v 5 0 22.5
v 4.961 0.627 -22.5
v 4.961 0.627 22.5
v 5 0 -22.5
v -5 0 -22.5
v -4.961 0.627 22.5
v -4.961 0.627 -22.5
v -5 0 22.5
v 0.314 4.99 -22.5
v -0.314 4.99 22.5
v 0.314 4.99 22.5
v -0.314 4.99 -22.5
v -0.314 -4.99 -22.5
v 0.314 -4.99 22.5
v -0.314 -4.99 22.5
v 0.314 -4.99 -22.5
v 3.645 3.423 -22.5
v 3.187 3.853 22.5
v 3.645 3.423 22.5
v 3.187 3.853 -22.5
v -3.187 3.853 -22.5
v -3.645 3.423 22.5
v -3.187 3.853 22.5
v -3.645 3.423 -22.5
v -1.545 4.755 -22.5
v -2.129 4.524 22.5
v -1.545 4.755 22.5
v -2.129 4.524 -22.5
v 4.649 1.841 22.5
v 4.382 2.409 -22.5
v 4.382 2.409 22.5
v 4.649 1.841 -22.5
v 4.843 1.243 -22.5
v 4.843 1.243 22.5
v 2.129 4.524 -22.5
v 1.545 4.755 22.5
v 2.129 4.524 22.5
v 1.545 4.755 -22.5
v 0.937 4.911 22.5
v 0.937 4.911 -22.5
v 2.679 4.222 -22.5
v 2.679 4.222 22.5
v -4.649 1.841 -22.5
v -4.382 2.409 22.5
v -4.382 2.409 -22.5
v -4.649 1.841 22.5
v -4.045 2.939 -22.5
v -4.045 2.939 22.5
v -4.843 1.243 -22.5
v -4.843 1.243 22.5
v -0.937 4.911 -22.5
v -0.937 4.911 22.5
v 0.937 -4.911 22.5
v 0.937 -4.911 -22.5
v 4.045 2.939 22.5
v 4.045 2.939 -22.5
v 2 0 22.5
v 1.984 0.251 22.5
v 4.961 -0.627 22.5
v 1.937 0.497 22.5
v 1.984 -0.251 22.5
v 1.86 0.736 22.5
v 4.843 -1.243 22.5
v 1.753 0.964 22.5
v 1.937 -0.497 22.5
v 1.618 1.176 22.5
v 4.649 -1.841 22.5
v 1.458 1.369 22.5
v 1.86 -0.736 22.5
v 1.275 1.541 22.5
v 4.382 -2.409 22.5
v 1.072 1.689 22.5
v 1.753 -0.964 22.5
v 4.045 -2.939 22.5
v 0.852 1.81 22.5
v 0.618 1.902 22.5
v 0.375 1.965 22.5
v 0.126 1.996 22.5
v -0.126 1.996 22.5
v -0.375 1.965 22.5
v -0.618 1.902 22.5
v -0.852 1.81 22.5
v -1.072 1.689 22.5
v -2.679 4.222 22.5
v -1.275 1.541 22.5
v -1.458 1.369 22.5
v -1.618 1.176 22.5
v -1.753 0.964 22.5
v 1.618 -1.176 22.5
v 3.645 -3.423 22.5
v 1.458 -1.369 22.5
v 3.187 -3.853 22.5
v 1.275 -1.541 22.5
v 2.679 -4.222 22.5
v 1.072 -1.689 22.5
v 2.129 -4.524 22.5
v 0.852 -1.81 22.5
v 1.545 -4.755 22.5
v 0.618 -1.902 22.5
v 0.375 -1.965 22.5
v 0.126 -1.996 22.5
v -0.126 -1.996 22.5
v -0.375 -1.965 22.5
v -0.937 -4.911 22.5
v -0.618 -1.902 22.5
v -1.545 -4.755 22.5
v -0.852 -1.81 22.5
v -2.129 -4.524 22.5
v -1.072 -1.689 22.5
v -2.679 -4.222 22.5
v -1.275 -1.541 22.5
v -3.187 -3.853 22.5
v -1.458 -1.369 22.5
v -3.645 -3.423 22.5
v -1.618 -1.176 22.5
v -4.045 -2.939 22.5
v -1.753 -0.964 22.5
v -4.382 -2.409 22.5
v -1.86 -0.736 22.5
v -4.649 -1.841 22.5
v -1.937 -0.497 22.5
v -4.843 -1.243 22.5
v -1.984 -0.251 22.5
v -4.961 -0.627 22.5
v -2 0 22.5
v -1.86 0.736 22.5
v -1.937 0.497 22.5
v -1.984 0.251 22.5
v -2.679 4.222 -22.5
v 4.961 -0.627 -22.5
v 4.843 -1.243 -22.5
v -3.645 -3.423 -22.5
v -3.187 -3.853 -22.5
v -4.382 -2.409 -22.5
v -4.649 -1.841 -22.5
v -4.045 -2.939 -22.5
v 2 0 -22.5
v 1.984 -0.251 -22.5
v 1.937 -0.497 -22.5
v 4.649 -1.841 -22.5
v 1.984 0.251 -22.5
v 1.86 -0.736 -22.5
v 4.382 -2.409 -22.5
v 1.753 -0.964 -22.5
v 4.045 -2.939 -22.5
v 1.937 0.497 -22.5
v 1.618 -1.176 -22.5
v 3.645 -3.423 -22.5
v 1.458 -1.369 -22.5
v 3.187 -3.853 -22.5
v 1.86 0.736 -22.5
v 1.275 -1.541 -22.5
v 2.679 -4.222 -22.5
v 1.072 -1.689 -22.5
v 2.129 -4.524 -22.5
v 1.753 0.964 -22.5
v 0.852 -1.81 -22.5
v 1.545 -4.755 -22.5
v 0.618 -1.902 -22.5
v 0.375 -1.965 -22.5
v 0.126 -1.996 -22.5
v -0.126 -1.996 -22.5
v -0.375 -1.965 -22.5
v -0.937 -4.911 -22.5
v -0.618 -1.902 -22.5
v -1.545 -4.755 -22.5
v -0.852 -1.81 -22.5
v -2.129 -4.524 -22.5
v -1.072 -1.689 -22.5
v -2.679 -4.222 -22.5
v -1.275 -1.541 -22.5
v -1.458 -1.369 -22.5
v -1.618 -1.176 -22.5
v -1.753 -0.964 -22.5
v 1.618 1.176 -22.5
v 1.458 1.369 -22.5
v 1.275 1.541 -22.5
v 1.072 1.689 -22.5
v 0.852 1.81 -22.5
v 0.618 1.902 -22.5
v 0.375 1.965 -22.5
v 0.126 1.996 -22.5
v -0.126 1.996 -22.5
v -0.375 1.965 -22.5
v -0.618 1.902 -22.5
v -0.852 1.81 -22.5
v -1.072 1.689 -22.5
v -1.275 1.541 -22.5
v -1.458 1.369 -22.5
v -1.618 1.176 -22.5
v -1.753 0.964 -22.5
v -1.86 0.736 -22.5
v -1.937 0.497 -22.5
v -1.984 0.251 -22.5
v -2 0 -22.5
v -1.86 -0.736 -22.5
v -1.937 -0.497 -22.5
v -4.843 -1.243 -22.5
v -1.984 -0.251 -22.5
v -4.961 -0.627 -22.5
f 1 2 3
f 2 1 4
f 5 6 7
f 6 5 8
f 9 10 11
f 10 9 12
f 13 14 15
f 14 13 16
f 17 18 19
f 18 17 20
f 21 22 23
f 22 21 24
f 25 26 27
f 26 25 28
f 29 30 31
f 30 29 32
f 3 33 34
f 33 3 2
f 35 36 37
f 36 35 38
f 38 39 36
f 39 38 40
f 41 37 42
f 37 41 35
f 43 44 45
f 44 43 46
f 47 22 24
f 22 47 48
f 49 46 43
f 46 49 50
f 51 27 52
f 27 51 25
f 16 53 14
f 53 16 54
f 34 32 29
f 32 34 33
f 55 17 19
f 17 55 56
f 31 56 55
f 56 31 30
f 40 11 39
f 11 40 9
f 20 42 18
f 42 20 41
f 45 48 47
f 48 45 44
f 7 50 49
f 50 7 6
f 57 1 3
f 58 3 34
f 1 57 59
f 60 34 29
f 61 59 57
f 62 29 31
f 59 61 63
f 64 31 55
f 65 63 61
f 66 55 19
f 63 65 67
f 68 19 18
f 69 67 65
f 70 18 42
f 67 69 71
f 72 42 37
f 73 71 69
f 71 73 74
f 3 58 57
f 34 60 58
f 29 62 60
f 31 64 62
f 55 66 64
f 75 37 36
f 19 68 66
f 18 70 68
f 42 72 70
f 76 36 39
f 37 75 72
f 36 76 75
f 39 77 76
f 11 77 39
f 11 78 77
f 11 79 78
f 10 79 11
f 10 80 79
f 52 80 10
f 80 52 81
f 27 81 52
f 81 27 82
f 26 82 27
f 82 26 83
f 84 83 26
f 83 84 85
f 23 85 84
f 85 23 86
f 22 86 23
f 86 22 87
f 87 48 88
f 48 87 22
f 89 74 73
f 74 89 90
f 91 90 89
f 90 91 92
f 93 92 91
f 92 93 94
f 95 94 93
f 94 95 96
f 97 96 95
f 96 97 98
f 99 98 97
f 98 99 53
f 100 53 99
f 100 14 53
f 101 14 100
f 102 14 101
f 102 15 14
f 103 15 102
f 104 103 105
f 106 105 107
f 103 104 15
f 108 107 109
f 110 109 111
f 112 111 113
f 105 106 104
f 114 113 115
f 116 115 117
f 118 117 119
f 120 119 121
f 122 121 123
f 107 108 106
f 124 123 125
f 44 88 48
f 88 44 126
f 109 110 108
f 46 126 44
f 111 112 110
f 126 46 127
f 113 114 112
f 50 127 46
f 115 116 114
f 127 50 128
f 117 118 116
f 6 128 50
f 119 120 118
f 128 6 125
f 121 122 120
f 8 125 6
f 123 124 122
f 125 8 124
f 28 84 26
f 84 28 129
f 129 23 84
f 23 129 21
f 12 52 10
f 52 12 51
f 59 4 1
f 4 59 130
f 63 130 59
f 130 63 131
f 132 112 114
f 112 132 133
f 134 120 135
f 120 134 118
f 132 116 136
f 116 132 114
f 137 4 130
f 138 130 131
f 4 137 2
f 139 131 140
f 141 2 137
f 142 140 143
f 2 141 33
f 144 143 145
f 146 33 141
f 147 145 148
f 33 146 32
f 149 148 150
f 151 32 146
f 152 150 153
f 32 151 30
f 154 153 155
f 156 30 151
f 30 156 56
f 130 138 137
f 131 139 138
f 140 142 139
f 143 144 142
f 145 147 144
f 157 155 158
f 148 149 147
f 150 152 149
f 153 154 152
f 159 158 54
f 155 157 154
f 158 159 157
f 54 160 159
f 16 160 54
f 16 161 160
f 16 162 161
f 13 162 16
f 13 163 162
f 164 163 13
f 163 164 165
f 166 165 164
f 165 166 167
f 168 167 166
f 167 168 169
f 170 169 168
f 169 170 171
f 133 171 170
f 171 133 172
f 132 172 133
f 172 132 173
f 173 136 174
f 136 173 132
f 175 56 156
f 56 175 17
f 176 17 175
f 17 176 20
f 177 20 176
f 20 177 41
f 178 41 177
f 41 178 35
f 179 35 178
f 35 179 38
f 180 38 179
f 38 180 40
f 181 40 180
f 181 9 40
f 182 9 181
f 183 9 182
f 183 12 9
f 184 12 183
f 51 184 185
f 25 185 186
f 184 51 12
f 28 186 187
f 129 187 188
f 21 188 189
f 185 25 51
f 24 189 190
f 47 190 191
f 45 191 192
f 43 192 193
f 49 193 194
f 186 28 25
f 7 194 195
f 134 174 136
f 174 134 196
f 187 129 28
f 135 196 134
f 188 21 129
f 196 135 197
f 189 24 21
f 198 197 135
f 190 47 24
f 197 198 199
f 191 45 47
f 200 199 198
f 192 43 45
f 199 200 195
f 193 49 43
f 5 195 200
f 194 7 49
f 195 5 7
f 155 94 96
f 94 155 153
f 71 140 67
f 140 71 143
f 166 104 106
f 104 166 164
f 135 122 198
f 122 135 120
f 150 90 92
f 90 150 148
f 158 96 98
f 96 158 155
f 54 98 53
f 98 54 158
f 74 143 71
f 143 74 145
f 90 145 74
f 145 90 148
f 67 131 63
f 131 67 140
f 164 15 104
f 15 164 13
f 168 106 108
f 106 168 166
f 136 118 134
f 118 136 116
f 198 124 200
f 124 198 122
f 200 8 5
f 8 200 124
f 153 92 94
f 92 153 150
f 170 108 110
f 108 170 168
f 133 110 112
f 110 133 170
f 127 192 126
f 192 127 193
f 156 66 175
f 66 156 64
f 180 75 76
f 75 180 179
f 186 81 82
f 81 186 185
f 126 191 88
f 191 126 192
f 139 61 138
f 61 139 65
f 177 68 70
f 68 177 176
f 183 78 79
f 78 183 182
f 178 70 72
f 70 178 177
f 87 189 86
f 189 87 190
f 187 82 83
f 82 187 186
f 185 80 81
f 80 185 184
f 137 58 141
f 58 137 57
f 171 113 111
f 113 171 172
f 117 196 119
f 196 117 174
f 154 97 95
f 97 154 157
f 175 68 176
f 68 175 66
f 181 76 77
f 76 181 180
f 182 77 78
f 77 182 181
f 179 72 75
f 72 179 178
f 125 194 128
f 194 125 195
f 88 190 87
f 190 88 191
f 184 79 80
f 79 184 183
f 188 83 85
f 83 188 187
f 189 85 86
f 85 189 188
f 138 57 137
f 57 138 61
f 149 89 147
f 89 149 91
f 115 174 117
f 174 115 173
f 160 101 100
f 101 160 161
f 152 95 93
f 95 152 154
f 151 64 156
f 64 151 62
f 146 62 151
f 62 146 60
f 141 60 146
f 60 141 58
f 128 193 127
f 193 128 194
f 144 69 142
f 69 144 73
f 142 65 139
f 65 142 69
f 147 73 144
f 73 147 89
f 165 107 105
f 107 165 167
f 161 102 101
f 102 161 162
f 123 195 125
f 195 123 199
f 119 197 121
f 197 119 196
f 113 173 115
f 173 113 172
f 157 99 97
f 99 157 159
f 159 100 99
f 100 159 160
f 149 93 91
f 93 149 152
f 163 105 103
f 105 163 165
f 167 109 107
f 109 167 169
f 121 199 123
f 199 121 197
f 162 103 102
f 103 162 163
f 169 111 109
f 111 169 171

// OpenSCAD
$fn = 50;


difference() {
	union() {
		translate(v = [0, 0, -22.5000000000]) {
			cylinder(h = 45, r = 5.0000000000);
		}
	}
	union() {
		translate(v = [0, 0, -100.0000000000]) {
			cylinder(h = 200, r = 2);
		}
	}
}
